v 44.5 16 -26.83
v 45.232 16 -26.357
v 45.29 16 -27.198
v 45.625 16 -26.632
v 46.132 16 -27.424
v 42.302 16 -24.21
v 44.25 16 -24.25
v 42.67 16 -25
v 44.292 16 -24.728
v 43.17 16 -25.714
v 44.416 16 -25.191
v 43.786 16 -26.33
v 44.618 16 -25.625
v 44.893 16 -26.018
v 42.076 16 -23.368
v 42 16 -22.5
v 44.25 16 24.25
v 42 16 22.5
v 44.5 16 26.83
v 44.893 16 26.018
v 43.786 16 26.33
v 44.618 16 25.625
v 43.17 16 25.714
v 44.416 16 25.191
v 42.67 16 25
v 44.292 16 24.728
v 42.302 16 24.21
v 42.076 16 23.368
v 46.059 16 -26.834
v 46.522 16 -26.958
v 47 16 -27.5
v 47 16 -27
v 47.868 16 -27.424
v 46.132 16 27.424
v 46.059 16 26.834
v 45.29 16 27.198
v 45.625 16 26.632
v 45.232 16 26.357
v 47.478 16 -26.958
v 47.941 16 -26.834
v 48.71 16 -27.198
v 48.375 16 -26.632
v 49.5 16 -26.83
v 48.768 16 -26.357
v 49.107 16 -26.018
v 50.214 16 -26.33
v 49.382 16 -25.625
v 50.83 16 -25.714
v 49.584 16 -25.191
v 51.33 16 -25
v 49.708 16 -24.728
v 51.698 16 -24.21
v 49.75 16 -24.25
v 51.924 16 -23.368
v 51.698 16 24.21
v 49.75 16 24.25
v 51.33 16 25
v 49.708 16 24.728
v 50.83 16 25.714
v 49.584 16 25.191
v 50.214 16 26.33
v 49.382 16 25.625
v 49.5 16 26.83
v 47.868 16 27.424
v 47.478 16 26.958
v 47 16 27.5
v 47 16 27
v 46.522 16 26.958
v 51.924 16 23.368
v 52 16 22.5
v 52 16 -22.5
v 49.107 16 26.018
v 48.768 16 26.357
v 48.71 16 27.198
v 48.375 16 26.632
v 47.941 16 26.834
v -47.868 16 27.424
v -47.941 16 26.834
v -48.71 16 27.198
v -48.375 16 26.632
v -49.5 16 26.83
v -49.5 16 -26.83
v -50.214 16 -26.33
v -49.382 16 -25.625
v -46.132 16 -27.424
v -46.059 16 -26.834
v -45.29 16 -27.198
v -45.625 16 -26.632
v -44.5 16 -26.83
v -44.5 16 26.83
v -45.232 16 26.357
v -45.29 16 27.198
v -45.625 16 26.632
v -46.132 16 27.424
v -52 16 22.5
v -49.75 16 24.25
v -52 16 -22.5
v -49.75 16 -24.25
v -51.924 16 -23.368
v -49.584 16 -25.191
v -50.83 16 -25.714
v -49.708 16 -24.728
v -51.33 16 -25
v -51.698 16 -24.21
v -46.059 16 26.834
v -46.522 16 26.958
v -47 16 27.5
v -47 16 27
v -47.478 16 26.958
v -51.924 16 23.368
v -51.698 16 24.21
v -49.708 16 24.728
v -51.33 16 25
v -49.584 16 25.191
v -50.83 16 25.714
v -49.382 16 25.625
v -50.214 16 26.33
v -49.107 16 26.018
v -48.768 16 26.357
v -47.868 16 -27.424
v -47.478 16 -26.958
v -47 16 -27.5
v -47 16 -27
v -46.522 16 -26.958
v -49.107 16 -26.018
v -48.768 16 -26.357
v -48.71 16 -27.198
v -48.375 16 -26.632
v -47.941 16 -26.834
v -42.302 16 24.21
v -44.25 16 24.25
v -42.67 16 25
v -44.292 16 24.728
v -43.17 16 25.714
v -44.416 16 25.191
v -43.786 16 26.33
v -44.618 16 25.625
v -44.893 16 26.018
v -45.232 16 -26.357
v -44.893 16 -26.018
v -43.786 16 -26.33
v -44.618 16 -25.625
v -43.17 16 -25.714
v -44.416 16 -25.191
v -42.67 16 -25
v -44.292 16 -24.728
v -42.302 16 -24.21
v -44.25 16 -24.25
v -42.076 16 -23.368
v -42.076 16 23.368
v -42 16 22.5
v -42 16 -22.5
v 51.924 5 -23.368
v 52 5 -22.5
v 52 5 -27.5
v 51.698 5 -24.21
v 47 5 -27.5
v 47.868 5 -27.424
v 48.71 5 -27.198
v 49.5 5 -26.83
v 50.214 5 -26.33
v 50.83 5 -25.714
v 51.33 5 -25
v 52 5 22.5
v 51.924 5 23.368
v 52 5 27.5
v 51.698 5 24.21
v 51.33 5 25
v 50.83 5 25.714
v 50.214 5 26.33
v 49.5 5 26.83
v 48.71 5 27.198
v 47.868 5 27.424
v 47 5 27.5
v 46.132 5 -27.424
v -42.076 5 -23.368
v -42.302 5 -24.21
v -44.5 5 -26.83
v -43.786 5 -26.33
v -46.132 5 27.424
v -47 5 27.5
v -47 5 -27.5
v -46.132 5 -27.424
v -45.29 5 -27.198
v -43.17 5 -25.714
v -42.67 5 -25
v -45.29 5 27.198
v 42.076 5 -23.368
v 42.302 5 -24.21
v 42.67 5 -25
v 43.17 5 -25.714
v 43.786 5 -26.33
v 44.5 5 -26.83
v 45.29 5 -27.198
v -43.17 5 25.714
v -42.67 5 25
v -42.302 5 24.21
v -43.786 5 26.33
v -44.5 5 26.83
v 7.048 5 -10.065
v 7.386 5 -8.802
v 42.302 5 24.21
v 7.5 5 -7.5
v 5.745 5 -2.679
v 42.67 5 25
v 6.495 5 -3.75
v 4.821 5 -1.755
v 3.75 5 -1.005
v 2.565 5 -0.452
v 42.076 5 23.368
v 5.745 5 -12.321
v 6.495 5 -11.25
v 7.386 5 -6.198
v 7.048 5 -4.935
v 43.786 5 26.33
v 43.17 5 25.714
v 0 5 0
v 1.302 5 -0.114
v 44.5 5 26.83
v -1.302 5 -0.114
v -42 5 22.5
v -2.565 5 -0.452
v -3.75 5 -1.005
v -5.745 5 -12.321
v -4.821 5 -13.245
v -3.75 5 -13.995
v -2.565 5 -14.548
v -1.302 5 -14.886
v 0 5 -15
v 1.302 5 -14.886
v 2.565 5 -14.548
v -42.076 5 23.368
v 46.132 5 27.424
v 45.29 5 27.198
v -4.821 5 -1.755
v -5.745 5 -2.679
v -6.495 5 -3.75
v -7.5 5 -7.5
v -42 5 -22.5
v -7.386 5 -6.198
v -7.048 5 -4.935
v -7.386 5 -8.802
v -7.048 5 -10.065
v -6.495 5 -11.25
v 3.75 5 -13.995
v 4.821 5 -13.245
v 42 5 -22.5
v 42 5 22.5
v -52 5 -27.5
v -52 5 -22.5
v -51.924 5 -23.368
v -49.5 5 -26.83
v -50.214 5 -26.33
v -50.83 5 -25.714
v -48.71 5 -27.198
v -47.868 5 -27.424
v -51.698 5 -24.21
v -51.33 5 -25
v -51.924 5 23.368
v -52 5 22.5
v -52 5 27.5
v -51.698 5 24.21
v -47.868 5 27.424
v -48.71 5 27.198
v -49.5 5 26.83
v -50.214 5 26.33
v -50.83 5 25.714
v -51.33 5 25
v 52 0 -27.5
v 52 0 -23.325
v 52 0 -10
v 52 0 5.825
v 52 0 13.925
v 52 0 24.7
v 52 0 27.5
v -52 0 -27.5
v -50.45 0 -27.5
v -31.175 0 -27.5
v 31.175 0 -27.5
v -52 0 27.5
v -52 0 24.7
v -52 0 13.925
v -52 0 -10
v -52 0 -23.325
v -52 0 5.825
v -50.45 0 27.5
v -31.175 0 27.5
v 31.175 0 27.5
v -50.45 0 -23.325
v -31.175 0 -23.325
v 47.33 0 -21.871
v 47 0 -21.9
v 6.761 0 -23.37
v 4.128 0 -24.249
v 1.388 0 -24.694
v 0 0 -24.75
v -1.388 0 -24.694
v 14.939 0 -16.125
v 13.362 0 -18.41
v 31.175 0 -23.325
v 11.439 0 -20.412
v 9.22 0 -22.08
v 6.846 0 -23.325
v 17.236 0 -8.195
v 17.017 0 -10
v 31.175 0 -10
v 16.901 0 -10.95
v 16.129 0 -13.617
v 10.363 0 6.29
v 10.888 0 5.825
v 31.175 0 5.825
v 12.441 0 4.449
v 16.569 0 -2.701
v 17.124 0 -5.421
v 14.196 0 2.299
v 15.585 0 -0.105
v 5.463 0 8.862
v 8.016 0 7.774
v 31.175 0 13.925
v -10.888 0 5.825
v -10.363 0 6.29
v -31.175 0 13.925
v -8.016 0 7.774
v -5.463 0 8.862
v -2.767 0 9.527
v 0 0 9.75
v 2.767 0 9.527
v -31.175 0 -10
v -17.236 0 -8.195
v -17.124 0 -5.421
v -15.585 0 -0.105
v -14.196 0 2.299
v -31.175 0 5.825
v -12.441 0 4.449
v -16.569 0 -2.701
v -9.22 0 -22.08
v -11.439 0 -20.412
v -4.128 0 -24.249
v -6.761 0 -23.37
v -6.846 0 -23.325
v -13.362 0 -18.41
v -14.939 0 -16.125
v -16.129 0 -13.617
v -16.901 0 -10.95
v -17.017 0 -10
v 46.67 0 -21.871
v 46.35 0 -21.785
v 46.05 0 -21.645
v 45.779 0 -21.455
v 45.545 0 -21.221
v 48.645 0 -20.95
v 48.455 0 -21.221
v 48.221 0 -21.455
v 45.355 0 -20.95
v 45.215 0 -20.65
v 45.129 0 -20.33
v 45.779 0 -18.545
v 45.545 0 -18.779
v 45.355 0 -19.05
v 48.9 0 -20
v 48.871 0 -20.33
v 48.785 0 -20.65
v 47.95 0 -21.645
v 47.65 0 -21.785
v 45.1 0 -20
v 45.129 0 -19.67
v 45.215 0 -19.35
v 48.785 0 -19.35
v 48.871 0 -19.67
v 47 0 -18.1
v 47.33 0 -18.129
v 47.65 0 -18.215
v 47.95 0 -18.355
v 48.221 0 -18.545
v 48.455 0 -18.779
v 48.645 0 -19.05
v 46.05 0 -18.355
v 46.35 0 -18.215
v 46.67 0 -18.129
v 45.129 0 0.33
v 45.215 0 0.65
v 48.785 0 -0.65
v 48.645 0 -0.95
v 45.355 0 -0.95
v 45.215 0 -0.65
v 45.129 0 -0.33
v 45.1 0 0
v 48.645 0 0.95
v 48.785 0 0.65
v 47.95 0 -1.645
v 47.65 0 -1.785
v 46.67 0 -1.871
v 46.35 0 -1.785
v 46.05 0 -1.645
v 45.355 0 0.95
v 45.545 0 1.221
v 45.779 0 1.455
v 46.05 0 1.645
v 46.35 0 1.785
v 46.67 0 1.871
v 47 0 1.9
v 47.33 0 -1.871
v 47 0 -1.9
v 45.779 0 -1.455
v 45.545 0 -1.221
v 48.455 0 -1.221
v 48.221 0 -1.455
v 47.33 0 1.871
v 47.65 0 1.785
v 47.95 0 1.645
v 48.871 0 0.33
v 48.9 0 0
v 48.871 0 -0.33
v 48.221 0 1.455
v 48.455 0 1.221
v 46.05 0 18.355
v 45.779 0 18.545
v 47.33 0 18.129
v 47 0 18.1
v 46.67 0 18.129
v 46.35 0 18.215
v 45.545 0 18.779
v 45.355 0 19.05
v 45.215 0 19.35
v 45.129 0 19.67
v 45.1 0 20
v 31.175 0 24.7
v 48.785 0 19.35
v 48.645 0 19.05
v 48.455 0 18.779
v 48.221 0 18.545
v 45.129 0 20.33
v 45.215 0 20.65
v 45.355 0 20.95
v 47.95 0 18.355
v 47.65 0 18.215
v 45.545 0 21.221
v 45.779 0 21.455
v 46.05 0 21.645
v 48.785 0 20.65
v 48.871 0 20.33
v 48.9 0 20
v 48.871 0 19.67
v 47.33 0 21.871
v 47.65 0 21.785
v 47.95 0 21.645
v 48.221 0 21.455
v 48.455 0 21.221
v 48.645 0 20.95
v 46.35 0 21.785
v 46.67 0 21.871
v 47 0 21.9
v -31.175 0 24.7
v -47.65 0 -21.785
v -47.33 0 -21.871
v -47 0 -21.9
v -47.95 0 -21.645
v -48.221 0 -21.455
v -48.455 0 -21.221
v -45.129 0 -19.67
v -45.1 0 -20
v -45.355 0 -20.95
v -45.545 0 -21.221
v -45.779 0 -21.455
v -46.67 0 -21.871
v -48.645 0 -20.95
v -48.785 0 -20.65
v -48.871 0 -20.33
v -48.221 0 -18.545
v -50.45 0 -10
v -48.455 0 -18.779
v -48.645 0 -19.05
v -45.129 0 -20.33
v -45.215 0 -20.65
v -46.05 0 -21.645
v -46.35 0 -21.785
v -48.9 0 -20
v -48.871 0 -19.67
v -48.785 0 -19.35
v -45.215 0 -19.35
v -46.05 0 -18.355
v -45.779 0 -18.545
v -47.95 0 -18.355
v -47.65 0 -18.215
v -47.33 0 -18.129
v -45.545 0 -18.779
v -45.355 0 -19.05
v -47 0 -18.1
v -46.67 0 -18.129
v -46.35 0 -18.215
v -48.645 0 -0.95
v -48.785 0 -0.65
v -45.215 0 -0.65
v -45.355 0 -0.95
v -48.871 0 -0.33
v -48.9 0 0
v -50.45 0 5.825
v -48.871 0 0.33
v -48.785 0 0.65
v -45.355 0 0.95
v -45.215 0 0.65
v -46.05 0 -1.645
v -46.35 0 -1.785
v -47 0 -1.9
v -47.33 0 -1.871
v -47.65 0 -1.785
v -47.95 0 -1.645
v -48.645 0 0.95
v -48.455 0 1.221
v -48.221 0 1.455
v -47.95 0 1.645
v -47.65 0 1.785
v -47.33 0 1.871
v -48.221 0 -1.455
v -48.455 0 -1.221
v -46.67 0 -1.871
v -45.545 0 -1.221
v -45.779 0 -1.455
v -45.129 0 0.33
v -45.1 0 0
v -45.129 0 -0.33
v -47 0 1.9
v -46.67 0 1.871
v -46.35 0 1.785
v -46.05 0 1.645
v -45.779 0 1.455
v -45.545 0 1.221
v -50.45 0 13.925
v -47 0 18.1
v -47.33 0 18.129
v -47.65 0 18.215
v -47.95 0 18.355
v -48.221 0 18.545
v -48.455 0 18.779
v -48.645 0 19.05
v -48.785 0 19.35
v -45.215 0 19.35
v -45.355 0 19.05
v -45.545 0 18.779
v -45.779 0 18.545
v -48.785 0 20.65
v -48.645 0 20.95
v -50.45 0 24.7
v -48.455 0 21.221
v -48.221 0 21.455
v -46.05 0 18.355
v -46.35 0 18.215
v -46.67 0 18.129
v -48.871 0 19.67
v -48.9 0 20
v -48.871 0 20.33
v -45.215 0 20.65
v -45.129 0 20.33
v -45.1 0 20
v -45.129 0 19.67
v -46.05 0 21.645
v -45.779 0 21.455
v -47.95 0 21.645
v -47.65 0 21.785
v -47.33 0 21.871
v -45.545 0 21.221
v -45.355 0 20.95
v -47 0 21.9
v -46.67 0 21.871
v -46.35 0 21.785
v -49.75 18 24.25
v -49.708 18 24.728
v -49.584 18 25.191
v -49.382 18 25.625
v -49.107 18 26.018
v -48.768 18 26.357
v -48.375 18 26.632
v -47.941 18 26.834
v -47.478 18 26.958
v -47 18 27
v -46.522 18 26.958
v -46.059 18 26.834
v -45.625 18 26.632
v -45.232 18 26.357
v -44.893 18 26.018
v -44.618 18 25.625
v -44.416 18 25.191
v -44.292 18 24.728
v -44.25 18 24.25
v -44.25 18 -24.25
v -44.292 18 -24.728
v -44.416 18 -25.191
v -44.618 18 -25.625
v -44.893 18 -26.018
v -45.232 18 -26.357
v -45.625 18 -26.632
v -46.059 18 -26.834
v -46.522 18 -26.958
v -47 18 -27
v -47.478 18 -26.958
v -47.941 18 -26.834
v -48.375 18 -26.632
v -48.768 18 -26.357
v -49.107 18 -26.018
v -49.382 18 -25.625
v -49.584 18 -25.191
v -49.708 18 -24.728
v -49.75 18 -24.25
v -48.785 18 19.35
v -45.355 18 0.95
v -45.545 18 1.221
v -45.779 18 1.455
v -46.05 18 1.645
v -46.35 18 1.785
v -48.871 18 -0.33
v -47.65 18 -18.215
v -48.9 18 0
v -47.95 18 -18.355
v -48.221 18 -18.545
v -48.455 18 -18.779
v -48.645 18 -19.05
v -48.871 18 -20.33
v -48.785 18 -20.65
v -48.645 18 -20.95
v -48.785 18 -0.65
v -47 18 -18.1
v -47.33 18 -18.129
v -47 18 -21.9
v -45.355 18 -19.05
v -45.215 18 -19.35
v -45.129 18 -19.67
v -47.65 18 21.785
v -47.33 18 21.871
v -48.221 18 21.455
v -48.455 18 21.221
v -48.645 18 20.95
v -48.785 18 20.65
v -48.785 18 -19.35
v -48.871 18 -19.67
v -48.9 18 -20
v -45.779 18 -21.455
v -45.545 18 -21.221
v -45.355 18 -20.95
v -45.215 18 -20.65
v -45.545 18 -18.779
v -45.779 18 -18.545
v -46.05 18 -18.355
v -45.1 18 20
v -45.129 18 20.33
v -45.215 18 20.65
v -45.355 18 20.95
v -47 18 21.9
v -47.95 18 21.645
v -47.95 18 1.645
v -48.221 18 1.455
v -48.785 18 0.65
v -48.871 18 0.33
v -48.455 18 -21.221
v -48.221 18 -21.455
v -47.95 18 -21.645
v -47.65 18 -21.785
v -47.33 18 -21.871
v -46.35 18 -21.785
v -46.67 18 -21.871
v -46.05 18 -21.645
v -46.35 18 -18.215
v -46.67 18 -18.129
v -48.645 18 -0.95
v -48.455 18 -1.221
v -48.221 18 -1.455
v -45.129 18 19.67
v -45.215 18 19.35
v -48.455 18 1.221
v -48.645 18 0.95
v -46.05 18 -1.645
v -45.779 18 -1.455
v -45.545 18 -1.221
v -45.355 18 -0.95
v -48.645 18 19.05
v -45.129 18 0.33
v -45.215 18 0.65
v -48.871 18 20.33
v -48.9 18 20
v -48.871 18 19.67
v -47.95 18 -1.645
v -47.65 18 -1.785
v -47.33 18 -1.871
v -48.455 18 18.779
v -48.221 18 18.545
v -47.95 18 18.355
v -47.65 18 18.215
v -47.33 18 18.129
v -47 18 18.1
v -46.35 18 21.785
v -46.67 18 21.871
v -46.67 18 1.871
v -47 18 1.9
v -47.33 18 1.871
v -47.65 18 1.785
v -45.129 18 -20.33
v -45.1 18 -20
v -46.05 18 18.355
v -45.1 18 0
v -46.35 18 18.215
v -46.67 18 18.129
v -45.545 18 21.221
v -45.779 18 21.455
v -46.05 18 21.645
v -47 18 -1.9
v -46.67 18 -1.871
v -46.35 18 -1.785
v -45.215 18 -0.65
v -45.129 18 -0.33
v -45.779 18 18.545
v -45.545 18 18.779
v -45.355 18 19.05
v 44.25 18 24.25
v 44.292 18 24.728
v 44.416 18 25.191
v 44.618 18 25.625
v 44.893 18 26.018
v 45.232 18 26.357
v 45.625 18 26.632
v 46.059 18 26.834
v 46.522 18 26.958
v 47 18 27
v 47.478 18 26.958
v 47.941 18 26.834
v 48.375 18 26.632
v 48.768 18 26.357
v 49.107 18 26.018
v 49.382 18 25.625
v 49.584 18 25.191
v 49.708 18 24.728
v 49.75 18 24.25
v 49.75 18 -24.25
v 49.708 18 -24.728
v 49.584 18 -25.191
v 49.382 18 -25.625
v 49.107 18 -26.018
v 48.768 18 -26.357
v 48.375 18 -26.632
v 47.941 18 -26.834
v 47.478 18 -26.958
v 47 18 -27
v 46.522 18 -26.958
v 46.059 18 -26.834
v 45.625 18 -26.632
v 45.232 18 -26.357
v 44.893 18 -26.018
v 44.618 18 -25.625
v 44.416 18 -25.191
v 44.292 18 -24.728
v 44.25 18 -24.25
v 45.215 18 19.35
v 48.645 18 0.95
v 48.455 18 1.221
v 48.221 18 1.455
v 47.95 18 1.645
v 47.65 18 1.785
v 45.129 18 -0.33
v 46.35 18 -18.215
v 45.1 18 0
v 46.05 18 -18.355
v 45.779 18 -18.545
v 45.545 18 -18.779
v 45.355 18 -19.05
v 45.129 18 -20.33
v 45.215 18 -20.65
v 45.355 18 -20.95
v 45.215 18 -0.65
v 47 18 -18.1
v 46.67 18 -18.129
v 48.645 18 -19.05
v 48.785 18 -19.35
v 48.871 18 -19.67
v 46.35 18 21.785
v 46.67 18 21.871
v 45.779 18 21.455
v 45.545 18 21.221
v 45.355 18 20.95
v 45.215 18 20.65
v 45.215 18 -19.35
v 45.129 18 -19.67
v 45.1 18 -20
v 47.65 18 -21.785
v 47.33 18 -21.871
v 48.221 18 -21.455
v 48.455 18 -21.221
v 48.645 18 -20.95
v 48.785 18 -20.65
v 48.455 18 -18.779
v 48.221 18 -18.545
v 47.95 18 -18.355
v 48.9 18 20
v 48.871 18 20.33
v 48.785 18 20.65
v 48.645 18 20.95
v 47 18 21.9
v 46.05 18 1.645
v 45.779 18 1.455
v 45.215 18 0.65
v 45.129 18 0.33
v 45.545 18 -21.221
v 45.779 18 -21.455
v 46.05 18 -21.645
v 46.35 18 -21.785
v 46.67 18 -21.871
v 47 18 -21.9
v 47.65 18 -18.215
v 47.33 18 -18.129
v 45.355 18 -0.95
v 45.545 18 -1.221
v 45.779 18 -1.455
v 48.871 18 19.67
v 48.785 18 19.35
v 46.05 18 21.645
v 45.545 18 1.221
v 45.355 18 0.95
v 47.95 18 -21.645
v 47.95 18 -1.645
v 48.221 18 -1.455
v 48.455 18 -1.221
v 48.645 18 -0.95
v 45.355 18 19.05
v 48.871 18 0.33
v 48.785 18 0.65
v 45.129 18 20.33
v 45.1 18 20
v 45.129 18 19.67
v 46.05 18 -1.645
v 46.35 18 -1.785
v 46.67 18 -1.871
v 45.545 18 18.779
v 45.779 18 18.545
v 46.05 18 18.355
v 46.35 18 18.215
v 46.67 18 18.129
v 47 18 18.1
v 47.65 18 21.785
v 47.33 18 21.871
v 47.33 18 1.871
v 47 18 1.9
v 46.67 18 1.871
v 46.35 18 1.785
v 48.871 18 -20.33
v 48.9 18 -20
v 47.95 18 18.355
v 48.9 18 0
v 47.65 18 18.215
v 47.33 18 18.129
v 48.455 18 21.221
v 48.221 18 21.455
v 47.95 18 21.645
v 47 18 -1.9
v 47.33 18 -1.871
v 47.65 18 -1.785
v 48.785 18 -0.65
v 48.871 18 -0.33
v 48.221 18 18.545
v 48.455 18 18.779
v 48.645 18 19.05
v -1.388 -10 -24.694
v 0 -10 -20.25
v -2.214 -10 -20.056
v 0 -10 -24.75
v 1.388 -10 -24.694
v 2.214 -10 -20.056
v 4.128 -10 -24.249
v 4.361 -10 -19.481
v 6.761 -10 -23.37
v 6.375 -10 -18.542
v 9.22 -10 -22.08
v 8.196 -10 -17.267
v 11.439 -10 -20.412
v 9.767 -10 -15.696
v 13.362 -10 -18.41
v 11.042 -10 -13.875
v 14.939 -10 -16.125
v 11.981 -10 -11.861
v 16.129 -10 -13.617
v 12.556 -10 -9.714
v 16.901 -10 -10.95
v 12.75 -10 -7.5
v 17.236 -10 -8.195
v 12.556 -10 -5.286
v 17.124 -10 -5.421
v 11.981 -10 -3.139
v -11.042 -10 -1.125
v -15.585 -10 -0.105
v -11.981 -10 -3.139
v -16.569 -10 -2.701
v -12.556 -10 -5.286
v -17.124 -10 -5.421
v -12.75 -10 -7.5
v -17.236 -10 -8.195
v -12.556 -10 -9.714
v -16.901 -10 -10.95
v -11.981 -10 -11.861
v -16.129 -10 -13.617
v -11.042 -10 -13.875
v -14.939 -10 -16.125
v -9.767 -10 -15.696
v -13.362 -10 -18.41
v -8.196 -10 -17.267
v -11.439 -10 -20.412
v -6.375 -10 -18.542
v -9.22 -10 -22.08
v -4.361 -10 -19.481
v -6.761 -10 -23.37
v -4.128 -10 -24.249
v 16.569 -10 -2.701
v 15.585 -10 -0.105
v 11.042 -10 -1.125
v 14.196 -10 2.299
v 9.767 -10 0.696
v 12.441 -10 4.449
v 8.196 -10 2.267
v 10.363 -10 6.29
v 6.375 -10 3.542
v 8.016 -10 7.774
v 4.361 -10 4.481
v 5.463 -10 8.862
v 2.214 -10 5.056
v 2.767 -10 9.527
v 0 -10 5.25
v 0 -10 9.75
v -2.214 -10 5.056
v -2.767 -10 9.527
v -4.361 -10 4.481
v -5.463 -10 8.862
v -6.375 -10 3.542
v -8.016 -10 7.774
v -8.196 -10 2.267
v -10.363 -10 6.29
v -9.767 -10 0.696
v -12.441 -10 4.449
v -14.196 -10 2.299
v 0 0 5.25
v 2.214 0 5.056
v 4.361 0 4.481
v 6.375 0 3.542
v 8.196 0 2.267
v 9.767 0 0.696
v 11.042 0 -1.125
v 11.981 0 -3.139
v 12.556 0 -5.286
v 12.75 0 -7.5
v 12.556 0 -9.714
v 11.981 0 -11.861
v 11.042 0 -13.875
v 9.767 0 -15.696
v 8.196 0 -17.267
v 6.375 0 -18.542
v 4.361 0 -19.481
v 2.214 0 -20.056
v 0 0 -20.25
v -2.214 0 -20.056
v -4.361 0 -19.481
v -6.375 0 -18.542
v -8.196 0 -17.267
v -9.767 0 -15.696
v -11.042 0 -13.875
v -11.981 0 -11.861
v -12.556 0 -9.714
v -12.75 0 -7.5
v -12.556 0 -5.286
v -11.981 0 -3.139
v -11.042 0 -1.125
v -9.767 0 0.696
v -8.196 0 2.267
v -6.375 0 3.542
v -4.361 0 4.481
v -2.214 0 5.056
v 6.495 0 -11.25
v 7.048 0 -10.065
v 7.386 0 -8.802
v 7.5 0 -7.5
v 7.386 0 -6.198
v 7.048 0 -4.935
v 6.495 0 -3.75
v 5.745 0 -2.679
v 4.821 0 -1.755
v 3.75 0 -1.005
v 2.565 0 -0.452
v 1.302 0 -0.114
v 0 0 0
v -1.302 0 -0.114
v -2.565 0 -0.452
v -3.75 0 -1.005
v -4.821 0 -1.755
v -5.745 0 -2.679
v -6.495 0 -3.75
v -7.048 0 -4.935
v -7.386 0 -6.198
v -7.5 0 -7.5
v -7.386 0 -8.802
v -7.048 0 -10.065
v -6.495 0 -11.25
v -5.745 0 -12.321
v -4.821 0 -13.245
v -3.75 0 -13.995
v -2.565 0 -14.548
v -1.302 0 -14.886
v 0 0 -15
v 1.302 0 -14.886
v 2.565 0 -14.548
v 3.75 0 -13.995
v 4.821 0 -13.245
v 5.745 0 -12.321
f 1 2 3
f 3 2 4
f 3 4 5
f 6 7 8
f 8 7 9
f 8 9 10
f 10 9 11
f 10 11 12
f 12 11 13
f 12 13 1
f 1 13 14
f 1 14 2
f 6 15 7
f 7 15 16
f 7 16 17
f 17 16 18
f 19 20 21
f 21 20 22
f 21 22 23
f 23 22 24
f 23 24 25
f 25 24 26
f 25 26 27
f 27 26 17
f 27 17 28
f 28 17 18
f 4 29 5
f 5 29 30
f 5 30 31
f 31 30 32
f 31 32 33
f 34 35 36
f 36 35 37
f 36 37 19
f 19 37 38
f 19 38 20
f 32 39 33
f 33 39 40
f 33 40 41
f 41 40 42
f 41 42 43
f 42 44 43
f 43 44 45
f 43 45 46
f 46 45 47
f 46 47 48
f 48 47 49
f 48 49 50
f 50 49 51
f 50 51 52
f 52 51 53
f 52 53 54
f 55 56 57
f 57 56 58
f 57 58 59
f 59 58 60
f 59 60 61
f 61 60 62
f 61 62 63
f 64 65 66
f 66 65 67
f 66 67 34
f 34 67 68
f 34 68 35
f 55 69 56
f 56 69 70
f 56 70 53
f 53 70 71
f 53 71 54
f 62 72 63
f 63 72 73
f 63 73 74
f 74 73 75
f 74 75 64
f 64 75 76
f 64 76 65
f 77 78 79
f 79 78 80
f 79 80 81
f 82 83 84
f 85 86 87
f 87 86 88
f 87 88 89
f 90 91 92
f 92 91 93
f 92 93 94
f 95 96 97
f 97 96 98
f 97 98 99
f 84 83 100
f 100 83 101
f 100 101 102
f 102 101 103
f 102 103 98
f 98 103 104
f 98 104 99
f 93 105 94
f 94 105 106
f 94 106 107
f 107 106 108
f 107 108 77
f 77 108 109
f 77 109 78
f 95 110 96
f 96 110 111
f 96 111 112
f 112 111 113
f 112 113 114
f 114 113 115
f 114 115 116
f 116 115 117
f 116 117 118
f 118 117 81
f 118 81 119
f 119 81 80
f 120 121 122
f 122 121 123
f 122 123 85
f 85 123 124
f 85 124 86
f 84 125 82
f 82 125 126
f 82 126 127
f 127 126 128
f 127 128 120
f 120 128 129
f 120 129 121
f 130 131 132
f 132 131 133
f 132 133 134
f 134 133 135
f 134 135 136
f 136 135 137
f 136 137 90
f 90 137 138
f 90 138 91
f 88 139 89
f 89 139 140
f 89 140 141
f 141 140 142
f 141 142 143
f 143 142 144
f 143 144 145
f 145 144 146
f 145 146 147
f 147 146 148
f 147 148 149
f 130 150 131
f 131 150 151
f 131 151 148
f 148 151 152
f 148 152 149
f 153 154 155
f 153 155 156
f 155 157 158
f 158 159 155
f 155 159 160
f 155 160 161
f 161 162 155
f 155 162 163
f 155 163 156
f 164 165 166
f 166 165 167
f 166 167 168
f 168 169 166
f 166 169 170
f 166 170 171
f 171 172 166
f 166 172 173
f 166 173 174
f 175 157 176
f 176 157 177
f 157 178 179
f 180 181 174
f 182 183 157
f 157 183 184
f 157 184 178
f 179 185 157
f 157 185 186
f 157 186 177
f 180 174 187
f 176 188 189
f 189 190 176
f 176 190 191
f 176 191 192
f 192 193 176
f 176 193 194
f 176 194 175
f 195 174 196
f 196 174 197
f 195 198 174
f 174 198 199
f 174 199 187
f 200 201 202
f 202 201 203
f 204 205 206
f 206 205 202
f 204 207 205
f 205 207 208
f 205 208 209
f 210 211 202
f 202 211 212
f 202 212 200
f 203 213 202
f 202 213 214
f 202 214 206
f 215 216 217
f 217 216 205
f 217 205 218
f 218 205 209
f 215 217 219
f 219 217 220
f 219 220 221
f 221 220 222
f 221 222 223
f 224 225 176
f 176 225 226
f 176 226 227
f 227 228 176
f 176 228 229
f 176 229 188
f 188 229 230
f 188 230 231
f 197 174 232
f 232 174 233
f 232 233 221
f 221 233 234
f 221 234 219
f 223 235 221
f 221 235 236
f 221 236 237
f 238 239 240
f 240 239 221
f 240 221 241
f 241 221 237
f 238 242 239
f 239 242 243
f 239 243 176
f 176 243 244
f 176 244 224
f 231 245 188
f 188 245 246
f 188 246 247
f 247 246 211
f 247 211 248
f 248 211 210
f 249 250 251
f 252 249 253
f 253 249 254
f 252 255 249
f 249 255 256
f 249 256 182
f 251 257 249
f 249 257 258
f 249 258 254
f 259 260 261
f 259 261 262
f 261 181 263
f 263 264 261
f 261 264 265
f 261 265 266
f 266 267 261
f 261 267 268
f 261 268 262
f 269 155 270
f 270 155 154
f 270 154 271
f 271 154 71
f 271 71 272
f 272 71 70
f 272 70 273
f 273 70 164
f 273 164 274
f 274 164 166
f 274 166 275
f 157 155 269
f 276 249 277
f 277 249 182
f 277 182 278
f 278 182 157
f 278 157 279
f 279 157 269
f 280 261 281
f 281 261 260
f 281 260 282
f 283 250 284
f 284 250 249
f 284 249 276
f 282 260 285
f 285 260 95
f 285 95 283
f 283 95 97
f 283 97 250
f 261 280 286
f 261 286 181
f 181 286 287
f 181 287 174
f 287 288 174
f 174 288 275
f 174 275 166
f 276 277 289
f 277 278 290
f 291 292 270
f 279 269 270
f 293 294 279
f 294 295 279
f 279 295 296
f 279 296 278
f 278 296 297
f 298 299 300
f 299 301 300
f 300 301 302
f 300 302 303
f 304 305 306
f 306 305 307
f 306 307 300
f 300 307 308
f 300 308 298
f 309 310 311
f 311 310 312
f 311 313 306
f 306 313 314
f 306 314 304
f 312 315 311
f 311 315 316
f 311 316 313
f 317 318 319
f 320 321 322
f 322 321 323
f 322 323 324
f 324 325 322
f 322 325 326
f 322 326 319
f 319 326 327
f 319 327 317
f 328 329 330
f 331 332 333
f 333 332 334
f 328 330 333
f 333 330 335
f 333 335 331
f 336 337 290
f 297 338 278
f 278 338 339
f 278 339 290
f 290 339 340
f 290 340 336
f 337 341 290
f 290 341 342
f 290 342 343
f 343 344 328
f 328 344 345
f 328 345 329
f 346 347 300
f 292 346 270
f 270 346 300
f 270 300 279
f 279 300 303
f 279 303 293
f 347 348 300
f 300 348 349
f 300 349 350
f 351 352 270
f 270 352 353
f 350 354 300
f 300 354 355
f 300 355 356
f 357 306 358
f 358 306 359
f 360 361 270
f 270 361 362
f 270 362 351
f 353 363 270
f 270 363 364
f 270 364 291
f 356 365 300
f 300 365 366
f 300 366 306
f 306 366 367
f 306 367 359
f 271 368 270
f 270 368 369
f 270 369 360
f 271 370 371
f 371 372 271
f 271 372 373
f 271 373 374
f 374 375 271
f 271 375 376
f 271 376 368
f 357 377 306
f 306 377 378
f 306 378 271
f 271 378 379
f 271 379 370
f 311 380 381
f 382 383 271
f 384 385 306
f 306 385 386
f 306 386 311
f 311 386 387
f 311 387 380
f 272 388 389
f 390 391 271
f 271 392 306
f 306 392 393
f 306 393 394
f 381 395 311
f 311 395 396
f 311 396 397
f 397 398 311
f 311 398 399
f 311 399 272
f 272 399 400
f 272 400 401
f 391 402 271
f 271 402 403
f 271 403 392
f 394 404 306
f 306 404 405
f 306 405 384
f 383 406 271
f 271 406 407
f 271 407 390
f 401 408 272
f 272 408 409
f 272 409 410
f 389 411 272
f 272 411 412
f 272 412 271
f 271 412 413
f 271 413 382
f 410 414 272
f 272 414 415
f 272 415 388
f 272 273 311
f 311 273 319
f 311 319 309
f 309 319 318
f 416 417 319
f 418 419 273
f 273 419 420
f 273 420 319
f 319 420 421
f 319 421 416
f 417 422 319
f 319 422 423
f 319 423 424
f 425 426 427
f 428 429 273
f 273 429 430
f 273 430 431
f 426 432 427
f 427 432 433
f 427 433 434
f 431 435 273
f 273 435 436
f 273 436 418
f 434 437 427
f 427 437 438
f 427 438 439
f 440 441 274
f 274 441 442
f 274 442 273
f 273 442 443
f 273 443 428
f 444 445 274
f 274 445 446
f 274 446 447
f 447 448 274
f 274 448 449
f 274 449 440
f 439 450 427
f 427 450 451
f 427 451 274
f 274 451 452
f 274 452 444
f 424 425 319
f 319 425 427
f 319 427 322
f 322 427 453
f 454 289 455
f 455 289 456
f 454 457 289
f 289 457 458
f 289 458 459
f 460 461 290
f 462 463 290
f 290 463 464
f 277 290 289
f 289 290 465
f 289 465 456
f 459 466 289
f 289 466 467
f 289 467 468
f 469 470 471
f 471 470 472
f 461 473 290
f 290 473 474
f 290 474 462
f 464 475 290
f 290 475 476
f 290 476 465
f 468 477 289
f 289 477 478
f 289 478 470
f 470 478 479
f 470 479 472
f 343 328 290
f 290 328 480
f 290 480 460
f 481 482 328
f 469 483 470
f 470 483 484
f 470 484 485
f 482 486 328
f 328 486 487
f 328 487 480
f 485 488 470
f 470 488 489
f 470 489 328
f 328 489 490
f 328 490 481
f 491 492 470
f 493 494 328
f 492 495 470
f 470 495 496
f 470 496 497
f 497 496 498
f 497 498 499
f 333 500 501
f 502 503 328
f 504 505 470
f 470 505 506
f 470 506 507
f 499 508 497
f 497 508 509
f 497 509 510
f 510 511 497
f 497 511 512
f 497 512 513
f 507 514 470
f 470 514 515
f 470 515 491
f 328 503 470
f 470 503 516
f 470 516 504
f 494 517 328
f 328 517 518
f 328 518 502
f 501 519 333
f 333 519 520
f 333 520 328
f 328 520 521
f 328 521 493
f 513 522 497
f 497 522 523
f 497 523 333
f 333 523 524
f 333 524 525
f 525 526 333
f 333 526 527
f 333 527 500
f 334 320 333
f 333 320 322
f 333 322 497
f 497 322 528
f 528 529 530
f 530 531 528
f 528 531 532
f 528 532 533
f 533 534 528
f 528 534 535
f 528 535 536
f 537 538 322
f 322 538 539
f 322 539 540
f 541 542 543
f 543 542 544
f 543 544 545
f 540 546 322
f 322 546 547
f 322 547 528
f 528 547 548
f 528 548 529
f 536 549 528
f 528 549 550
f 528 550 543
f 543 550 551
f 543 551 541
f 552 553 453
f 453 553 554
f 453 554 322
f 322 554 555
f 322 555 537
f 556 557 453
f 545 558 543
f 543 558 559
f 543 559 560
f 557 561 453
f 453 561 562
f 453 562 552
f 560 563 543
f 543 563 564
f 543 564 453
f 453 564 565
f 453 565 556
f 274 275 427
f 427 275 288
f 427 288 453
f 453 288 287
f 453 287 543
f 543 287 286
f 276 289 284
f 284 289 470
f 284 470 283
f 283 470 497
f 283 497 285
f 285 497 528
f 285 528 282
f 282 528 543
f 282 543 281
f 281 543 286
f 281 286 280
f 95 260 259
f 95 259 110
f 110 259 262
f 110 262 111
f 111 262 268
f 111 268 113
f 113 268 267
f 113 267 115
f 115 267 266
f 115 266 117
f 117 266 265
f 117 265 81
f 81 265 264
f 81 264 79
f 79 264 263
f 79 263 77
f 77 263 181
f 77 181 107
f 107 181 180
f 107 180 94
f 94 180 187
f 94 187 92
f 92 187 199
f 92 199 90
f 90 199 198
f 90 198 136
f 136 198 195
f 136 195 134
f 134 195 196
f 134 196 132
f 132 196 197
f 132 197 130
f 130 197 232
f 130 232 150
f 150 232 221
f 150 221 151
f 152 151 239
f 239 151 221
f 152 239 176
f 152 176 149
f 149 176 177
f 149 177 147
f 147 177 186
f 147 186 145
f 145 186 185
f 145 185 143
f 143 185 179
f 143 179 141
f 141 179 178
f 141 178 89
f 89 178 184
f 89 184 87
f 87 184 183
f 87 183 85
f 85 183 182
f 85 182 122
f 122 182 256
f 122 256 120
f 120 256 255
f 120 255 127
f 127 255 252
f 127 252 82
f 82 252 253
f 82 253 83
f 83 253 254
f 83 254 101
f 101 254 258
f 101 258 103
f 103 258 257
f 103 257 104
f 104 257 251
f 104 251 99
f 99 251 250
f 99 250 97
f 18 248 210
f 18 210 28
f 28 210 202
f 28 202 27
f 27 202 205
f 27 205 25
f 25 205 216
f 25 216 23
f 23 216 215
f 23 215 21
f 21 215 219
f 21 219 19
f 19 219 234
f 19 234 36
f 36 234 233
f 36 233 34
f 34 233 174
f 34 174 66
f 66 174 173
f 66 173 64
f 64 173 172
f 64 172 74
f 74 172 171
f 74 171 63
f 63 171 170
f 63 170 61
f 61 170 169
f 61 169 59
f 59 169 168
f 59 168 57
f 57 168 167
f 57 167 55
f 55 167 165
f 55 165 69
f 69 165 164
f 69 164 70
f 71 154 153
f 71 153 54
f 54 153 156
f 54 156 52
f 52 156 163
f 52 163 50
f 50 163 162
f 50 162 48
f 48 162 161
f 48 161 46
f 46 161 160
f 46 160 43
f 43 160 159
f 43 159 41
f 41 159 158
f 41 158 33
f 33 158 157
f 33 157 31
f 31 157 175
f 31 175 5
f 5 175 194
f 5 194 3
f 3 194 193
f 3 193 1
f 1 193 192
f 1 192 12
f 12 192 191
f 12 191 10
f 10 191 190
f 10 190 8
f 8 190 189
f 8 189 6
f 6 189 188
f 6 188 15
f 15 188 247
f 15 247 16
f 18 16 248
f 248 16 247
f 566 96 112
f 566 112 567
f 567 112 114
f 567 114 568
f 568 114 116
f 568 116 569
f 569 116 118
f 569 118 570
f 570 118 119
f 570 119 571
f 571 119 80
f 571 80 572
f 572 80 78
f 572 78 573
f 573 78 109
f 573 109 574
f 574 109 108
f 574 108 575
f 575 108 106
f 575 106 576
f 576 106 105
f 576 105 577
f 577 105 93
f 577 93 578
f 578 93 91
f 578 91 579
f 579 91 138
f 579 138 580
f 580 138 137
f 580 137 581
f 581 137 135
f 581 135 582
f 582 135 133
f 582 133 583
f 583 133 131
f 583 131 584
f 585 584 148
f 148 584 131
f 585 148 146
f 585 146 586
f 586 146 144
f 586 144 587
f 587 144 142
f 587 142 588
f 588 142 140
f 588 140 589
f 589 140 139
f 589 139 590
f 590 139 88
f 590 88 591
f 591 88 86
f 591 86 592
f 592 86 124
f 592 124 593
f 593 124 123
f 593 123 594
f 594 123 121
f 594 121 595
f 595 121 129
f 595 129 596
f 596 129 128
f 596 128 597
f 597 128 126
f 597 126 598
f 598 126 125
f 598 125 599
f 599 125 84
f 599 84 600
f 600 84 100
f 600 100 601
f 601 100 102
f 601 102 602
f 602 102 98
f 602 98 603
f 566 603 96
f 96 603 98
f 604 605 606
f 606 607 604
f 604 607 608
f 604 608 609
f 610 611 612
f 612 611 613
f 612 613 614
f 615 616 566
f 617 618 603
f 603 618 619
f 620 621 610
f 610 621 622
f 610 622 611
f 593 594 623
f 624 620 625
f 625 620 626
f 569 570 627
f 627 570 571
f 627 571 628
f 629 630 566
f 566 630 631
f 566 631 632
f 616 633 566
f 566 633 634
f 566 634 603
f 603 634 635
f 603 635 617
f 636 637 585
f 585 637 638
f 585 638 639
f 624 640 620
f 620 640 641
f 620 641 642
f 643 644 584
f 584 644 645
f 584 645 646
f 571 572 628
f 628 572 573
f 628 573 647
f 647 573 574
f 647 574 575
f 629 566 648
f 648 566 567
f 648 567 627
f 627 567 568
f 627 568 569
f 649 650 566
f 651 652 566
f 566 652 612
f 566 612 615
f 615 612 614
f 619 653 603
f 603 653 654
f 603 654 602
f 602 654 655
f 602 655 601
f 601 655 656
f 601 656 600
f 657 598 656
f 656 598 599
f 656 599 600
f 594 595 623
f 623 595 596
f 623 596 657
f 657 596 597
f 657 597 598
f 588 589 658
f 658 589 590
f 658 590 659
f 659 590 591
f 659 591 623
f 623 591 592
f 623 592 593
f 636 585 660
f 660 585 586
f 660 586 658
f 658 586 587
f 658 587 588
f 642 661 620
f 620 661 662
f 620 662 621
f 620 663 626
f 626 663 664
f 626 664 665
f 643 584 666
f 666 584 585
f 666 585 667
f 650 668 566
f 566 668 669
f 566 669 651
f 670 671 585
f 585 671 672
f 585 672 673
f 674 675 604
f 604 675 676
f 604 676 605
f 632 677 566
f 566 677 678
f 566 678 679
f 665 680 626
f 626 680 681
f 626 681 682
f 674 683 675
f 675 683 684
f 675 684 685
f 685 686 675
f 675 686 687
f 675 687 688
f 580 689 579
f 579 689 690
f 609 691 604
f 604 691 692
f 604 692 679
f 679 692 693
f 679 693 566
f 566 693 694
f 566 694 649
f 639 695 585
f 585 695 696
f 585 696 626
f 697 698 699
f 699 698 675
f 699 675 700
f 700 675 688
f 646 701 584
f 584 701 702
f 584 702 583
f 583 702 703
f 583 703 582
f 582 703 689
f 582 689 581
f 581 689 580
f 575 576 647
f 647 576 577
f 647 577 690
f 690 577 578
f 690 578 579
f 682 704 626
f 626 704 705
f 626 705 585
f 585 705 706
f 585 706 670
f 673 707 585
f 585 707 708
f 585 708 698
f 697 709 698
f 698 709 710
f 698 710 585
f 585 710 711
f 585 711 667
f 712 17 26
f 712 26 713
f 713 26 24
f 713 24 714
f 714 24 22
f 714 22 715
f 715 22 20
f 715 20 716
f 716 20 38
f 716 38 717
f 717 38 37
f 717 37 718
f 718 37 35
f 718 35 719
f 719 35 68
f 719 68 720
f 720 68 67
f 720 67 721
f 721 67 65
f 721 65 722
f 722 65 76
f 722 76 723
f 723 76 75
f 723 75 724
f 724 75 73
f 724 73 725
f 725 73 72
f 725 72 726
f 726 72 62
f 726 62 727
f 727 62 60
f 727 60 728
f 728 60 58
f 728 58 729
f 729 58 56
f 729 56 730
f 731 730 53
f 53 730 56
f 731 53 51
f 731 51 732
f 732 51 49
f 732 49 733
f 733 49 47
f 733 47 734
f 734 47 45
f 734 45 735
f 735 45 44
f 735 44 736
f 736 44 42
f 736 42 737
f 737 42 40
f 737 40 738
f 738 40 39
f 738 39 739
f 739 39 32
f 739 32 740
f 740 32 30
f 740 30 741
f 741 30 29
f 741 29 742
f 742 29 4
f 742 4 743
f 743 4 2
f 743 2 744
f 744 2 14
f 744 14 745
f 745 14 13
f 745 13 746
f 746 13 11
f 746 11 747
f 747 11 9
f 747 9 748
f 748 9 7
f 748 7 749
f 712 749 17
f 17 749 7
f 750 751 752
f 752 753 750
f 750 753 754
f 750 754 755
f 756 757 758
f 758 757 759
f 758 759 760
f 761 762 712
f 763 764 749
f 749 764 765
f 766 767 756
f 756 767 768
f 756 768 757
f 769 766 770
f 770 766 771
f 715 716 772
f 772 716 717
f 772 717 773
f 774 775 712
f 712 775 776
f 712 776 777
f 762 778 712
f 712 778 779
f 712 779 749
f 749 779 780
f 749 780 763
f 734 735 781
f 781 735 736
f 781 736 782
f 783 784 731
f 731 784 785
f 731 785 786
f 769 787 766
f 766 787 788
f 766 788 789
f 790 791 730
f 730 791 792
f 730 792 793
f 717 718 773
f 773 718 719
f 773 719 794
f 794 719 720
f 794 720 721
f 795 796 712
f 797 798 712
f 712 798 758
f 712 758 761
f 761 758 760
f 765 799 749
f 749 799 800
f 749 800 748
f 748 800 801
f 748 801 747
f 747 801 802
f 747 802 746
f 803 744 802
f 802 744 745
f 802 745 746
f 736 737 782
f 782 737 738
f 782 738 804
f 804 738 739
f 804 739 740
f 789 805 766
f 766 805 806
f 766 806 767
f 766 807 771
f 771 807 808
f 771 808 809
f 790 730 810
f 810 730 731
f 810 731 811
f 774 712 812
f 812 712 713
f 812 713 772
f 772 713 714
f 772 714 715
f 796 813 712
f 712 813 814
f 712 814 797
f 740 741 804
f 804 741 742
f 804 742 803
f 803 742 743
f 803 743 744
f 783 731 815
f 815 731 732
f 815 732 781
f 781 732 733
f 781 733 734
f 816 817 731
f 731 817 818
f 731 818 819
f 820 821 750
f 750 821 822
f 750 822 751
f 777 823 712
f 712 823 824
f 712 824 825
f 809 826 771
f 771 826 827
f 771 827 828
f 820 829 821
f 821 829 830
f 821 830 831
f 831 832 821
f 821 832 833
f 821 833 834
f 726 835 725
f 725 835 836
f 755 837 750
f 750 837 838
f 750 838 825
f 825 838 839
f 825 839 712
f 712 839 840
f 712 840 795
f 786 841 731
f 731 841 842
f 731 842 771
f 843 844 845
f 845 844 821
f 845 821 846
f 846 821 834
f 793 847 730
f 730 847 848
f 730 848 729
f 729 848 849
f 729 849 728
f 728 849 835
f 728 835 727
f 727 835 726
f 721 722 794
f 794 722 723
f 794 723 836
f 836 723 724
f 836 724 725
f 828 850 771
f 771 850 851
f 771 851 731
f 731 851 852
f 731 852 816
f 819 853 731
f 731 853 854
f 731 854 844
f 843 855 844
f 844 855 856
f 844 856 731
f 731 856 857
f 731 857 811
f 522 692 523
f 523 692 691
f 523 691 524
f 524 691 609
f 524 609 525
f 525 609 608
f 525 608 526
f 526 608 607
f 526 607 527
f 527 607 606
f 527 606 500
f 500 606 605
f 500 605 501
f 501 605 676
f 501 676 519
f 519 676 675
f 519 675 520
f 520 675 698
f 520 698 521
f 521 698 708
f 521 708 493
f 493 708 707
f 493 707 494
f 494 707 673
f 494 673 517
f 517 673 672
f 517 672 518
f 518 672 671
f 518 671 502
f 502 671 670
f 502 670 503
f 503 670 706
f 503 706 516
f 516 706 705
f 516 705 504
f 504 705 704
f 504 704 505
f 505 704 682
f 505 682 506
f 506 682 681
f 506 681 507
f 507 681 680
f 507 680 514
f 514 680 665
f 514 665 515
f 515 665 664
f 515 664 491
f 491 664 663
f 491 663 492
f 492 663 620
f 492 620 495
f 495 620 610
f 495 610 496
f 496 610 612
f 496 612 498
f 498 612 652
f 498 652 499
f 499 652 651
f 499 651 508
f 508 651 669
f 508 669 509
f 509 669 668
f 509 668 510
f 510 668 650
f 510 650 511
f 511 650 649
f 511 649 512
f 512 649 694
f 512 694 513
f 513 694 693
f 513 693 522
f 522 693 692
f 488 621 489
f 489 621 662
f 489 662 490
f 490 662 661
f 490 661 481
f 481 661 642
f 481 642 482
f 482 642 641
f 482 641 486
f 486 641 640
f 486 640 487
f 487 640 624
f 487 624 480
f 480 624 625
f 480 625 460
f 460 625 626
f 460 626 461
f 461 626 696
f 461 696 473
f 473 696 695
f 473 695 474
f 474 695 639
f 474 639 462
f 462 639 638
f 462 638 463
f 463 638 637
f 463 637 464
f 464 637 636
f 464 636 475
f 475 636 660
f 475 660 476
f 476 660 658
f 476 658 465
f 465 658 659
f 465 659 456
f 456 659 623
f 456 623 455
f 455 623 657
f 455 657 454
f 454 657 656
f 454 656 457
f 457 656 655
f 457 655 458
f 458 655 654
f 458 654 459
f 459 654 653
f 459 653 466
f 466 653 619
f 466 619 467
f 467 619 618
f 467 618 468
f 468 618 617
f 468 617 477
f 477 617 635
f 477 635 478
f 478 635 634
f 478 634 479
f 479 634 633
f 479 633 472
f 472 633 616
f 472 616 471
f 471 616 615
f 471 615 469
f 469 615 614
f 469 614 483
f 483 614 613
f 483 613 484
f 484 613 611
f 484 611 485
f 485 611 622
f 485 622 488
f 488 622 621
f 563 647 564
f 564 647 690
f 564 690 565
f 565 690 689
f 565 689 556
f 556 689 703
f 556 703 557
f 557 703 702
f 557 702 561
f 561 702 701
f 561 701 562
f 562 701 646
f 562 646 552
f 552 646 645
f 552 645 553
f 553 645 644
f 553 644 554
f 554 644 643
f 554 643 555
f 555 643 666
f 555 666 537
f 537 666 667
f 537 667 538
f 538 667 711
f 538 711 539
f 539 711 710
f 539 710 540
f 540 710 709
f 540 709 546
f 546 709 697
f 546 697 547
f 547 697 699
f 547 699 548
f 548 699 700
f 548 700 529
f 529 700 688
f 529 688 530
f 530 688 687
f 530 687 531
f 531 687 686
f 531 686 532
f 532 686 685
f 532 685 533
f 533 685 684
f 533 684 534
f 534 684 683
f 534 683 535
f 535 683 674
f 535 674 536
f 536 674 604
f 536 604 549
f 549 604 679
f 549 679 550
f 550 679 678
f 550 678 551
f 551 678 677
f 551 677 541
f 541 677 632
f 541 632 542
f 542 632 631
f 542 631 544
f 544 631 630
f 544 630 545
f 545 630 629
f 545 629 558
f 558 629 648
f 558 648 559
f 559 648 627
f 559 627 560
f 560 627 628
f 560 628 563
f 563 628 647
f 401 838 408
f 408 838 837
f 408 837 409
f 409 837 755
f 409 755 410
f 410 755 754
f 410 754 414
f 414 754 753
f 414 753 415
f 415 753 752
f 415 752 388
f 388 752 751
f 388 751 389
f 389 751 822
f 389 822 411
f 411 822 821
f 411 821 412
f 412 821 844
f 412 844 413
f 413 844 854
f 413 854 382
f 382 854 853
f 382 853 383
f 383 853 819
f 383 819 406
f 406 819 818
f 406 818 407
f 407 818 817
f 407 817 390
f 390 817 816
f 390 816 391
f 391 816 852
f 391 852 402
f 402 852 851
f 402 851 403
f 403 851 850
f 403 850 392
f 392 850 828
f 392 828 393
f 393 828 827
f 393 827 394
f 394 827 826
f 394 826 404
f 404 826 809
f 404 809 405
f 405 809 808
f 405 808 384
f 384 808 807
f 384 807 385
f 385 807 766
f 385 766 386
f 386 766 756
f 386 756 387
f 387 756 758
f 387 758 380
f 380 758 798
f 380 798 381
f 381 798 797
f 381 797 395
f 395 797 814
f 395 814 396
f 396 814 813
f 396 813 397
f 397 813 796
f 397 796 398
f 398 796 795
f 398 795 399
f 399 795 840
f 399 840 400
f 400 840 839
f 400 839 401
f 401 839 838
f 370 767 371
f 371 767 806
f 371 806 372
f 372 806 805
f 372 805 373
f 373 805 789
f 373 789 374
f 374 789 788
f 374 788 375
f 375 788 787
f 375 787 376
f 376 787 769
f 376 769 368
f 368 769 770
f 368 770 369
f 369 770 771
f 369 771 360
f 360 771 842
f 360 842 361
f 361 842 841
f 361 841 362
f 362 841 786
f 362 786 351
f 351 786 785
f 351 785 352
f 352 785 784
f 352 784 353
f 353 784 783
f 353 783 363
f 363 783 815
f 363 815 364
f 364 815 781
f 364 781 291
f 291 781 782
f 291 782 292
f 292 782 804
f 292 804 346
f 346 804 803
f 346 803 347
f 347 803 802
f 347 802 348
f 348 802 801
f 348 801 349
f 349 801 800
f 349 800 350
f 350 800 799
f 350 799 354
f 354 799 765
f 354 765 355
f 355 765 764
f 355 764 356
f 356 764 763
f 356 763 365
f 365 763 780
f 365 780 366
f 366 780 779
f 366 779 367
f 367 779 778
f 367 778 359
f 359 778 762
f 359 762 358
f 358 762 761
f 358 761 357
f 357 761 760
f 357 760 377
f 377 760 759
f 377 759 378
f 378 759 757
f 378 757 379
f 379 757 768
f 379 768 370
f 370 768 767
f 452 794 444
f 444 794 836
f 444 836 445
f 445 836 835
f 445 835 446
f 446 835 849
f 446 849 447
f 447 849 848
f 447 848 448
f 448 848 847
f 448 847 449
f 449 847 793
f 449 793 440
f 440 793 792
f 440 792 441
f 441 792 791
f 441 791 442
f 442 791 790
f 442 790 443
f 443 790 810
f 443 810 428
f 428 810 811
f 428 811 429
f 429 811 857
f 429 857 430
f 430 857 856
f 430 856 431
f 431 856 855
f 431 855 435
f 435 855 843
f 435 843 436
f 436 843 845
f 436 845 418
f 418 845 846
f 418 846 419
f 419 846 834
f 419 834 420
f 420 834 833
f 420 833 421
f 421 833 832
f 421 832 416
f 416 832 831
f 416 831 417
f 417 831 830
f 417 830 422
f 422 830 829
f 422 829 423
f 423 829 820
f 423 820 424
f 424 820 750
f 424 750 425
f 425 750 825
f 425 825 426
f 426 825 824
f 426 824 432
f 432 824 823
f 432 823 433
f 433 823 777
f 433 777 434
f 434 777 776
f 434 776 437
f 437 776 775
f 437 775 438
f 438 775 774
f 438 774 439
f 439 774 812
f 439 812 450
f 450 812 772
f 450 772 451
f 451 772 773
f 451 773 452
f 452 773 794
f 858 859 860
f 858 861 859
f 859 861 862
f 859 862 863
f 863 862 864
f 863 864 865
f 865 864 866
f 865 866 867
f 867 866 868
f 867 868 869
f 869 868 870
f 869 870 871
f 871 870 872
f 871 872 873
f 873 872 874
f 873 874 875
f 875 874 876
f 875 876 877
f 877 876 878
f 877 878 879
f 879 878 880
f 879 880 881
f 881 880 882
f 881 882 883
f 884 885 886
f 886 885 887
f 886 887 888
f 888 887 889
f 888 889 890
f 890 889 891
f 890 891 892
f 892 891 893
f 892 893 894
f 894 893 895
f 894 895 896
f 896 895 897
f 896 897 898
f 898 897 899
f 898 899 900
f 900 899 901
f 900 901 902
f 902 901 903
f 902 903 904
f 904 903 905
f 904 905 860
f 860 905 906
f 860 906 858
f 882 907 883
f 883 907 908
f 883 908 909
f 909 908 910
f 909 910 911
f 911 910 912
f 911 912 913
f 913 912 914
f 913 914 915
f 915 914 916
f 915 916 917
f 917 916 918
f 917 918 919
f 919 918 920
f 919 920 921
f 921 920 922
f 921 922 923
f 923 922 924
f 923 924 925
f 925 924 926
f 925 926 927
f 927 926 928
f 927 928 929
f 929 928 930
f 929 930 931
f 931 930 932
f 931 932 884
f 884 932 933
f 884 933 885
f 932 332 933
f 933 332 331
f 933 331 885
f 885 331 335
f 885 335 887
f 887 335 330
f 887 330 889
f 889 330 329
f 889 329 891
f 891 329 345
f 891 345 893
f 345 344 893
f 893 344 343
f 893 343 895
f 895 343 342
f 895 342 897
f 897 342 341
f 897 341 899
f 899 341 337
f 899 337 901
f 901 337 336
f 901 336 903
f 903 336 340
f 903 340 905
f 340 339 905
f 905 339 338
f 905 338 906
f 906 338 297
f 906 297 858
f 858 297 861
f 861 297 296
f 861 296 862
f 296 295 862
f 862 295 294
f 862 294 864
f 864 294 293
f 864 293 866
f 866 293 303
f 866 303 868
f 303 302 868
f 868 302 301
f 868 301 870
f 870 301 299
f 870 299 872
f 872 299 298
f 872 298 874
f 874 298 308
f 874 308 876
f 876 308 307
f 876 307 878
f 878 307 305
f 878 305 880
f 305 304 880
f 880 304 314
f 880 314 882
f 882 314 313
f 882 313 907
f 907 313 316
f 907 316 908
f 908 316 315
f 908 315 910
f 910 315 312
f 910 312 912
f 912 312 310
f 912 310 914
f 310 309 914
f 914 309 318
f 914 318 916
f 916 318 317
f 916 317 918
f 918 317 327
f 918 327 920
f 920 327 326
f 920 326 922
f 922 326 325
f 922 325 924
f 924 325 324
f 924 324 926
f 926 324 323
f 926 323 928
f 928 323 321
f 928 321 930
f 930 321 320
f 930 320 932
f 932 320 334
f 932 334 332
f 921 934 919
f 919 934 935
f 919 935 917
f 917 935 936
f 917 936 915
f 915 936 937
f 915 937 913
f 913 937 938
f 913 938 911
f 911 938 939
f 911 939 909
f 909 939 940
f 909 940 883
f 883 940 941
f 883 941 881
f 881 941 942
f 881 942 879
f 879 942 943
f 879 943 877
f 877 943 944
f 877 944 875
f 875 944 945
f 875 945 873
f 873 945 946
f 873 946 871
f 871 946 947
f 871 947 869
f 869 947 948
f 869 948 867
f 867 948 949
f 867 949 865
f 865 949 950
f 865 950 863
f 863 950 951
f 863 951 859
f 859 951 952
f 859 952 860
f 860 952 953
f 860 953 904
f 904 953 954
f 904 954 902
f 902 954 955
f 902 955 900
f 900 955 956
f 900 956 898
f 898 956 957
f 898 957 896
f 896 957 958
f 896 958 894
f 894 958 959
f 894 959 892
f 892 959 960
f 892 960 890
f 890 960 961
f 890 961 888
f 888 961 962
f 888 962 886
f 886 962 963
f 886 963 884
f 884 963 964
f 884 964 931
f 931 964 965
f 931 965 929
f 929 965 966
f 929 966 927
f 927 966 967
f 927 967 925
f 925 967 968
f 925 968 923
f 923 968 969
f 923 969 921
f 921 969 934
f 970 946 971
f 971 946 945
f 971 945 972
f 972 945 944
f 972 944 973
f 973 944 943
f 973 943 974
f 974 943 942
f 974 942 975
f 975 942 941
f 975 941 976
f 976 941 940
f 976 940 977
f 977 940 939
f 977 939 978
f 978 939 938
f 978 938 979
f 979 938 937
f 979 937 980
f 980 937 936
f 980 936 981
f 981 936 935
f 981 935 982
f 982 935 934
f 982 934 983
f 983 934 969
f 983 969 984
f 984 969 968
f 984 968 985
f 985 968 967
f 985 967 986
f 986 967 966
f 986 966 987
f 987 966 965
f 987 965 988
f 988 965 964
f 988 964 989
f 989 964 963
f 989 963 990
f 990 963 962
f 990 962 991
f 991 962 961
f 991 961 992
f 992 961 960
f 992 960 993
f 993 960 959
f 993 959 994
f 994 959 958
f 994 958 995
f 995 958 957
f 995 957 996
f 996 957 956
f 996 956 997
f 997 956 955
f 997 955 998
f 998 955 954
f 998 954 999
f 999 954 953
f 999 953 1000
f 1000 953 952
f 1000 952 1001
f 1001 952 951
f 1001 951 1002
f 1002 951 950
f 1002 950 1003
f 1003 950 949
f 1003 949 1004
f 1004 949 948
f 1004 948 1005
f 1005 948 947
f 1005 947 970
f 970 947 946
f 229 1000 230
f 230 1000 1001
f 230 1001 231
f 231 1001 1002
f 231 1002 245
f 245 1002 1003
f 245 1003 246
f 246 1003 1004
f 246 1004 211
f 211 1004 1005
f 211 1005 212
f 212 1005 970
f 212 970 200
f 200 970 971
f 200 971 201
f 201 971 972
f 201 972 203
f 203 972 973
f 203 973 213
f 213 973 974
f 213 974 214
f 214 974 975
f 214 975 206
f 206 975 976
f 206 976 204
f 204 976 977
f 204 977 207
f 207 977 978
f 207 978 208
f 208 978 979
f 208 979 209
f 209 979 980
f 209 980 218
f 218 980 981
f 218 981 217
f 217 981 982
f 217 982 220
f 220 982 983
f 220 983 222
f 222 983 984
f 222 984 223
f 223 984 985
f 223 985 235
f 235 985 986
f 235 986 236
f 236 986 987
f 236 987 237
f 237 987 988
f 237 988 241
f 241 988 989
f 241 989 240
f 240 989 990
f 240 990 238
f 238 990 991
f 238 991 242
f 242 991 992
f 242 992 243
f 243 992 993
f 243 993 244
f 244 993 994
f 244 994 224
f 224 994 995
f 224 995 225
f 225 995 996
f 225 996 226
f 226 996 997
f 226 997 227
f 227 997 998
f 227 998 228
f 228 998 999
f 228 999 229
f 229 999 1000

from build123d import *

# Parameters (mm, degrees)
SKETCH1_W           = 104
SKETCH1_H           = 55
BOSS_EXTRUDE1_DEPTH = 5
BOSS_EXTRUDE2_DEPTH = 11
BOSS_EXTRUDE3_DEPTH = 2
SKETCH4_R           = 1.9
CUT_EXTRUDE1_DEPTH  = 23
SKETCH5_R           = 17.25
SKETCH5_R_2         = 12.75
BOSS_EXTRUDE4_DEPTH = 10
SKETCH7_R           = 7.5
CUT_EXTRUDE2_DEPTH  = 35


with BuildPart() as part:
    # Sketch1 → Boss-Extrude1 (new body)
    with BuildSketch(Plane(origin=(0, 0, 0), x_dir=(1, 0, 0), z_dir=(0, 1, 0))):
        Rectangle(SKETCH1_W, SKETCH1_H)
    extrude(amount=BOSS_EXTRUDE1_DEPTH)

    # Sketch2 → Boss-Extrude2 (add)
    with BuildSketch(Plane(origin=(0, 5, 0), x_dir=(1, 0, 0), z_dir=(0, 1, 0))):
        with BuildLine():
            Line((-52, -22.5), (-52, 22.5))
            ThreePointArc((-52, 22.5), (-47, 27.5), (-42, 22.5))
            Line((-42, 22.5), (-42, -22.5))
            ThreePointArc((-42, -22.5), (-47, -27.5), (-52, -22.5))
        make_face()
        with BuildLine():
            Line((42, -22.5), (42, 22.5))
            ThreePointArc((42, 22.5), (47, 27.5), (52, 22.5))
            Line((52, 22.5), (52, -22.5))
            ThreePointArc((52, -22.5), (47, -27.5), (42, -22.5))
        make_face()
    extrude(amount=BOSS_EXTRUDE2_DEPTH)

    # Sketch3 → Boss-Extrude3 (add)
    with BuildSketch(Plane(origin=(0, 16, 0), x_dir=(1, 0, 0), z_dir=(0, 1, 0))):
        with BuildLine():
            Line((-49.75, -24.25), (-49.75, 24.25))
            ThreePointArc((-49.75, 24.25), (-47, 27), (-44.25, 24.25))
            Line((-44.25, 24.25), (-44.25, -24.25))
            ThreePointArc((-44.25, -24.25), (-47, -27), (-49.75, -24.25))
        make_face()
        with BuildLine():
            Line((44.25, -24.25), (44.25, 24.25))
            ThreePointArc((44.25, 24.25), (47, 27), (49.75, 24.25))
            Line((49.75, 24.25), (49.75, -24.25))
            ThreePointArc((49.75, -24.25), (47, -27), (44.25, -24.25))
        make_face()
    extrude(amount=BOSS_EXTRUDE3_DEPTH)

    # Sketch4 → Cut-Extrude1 (cut)
    with BuildSketch(Plane(origin=(0, 18, 0), x_dir=(1, 0, 0), z_dir=(0, 1, 0))):
        with Locations(Location((-47, 0, 0), (0, 0, 270))):
            Circle(SKETCH4_R)
        with Locations(Location((-47, 20, 0), (0, 0, 270))):
            Circle(SKETCH4_R)
        with Locations(Location((-47, -20, 0), (0, 0, 270))):
            Circle(SKETCH4_R)
        with Locations(Location((47, 0, 0), (0, 0, 270))):
            Circle(SKETCH4_R)
        with Locations(Location((47, 20, 0), (0, 0, 270))):
            Circle(SKETCH4_R)
        with Locations(Location((47, -20, 0), (0, 0, 270))):
            Circle(SKETCH4_R)
    extrude(amount=-CUT_EXTRUDE1_DEPTH, mode=Mode.SUBTRACT)

    # Sketch5 → Boss-Extrude4 (add)
    with BuildSketch(Plane.XZ):
        with Locations(Location((0, -7.5, 0), (0, 0, 270))):
            Circle(SKETCH5_R)
        with Locations(Location((0, -7.5, 0), (0, 0, 270))):
            Circle(SKETCH5_R_2, mode=Mode.SUBTRACT)
    extrude(amount=BOSS_EXTRUDE4_DEPTH)

    # Sketch7 → Cut-Extrude2 (cut)
    with BuildSketch(Plane.XZ.offset(10)):
        with Locations(Location((0, -7.5, 0), (0, 0, 270))):
            Circle(SKETCH7_R)
    extrude(amount=-CUT_EXTRUDE2_DEPTH, mode=Mode.SUBTRACT)


solid = part.part
